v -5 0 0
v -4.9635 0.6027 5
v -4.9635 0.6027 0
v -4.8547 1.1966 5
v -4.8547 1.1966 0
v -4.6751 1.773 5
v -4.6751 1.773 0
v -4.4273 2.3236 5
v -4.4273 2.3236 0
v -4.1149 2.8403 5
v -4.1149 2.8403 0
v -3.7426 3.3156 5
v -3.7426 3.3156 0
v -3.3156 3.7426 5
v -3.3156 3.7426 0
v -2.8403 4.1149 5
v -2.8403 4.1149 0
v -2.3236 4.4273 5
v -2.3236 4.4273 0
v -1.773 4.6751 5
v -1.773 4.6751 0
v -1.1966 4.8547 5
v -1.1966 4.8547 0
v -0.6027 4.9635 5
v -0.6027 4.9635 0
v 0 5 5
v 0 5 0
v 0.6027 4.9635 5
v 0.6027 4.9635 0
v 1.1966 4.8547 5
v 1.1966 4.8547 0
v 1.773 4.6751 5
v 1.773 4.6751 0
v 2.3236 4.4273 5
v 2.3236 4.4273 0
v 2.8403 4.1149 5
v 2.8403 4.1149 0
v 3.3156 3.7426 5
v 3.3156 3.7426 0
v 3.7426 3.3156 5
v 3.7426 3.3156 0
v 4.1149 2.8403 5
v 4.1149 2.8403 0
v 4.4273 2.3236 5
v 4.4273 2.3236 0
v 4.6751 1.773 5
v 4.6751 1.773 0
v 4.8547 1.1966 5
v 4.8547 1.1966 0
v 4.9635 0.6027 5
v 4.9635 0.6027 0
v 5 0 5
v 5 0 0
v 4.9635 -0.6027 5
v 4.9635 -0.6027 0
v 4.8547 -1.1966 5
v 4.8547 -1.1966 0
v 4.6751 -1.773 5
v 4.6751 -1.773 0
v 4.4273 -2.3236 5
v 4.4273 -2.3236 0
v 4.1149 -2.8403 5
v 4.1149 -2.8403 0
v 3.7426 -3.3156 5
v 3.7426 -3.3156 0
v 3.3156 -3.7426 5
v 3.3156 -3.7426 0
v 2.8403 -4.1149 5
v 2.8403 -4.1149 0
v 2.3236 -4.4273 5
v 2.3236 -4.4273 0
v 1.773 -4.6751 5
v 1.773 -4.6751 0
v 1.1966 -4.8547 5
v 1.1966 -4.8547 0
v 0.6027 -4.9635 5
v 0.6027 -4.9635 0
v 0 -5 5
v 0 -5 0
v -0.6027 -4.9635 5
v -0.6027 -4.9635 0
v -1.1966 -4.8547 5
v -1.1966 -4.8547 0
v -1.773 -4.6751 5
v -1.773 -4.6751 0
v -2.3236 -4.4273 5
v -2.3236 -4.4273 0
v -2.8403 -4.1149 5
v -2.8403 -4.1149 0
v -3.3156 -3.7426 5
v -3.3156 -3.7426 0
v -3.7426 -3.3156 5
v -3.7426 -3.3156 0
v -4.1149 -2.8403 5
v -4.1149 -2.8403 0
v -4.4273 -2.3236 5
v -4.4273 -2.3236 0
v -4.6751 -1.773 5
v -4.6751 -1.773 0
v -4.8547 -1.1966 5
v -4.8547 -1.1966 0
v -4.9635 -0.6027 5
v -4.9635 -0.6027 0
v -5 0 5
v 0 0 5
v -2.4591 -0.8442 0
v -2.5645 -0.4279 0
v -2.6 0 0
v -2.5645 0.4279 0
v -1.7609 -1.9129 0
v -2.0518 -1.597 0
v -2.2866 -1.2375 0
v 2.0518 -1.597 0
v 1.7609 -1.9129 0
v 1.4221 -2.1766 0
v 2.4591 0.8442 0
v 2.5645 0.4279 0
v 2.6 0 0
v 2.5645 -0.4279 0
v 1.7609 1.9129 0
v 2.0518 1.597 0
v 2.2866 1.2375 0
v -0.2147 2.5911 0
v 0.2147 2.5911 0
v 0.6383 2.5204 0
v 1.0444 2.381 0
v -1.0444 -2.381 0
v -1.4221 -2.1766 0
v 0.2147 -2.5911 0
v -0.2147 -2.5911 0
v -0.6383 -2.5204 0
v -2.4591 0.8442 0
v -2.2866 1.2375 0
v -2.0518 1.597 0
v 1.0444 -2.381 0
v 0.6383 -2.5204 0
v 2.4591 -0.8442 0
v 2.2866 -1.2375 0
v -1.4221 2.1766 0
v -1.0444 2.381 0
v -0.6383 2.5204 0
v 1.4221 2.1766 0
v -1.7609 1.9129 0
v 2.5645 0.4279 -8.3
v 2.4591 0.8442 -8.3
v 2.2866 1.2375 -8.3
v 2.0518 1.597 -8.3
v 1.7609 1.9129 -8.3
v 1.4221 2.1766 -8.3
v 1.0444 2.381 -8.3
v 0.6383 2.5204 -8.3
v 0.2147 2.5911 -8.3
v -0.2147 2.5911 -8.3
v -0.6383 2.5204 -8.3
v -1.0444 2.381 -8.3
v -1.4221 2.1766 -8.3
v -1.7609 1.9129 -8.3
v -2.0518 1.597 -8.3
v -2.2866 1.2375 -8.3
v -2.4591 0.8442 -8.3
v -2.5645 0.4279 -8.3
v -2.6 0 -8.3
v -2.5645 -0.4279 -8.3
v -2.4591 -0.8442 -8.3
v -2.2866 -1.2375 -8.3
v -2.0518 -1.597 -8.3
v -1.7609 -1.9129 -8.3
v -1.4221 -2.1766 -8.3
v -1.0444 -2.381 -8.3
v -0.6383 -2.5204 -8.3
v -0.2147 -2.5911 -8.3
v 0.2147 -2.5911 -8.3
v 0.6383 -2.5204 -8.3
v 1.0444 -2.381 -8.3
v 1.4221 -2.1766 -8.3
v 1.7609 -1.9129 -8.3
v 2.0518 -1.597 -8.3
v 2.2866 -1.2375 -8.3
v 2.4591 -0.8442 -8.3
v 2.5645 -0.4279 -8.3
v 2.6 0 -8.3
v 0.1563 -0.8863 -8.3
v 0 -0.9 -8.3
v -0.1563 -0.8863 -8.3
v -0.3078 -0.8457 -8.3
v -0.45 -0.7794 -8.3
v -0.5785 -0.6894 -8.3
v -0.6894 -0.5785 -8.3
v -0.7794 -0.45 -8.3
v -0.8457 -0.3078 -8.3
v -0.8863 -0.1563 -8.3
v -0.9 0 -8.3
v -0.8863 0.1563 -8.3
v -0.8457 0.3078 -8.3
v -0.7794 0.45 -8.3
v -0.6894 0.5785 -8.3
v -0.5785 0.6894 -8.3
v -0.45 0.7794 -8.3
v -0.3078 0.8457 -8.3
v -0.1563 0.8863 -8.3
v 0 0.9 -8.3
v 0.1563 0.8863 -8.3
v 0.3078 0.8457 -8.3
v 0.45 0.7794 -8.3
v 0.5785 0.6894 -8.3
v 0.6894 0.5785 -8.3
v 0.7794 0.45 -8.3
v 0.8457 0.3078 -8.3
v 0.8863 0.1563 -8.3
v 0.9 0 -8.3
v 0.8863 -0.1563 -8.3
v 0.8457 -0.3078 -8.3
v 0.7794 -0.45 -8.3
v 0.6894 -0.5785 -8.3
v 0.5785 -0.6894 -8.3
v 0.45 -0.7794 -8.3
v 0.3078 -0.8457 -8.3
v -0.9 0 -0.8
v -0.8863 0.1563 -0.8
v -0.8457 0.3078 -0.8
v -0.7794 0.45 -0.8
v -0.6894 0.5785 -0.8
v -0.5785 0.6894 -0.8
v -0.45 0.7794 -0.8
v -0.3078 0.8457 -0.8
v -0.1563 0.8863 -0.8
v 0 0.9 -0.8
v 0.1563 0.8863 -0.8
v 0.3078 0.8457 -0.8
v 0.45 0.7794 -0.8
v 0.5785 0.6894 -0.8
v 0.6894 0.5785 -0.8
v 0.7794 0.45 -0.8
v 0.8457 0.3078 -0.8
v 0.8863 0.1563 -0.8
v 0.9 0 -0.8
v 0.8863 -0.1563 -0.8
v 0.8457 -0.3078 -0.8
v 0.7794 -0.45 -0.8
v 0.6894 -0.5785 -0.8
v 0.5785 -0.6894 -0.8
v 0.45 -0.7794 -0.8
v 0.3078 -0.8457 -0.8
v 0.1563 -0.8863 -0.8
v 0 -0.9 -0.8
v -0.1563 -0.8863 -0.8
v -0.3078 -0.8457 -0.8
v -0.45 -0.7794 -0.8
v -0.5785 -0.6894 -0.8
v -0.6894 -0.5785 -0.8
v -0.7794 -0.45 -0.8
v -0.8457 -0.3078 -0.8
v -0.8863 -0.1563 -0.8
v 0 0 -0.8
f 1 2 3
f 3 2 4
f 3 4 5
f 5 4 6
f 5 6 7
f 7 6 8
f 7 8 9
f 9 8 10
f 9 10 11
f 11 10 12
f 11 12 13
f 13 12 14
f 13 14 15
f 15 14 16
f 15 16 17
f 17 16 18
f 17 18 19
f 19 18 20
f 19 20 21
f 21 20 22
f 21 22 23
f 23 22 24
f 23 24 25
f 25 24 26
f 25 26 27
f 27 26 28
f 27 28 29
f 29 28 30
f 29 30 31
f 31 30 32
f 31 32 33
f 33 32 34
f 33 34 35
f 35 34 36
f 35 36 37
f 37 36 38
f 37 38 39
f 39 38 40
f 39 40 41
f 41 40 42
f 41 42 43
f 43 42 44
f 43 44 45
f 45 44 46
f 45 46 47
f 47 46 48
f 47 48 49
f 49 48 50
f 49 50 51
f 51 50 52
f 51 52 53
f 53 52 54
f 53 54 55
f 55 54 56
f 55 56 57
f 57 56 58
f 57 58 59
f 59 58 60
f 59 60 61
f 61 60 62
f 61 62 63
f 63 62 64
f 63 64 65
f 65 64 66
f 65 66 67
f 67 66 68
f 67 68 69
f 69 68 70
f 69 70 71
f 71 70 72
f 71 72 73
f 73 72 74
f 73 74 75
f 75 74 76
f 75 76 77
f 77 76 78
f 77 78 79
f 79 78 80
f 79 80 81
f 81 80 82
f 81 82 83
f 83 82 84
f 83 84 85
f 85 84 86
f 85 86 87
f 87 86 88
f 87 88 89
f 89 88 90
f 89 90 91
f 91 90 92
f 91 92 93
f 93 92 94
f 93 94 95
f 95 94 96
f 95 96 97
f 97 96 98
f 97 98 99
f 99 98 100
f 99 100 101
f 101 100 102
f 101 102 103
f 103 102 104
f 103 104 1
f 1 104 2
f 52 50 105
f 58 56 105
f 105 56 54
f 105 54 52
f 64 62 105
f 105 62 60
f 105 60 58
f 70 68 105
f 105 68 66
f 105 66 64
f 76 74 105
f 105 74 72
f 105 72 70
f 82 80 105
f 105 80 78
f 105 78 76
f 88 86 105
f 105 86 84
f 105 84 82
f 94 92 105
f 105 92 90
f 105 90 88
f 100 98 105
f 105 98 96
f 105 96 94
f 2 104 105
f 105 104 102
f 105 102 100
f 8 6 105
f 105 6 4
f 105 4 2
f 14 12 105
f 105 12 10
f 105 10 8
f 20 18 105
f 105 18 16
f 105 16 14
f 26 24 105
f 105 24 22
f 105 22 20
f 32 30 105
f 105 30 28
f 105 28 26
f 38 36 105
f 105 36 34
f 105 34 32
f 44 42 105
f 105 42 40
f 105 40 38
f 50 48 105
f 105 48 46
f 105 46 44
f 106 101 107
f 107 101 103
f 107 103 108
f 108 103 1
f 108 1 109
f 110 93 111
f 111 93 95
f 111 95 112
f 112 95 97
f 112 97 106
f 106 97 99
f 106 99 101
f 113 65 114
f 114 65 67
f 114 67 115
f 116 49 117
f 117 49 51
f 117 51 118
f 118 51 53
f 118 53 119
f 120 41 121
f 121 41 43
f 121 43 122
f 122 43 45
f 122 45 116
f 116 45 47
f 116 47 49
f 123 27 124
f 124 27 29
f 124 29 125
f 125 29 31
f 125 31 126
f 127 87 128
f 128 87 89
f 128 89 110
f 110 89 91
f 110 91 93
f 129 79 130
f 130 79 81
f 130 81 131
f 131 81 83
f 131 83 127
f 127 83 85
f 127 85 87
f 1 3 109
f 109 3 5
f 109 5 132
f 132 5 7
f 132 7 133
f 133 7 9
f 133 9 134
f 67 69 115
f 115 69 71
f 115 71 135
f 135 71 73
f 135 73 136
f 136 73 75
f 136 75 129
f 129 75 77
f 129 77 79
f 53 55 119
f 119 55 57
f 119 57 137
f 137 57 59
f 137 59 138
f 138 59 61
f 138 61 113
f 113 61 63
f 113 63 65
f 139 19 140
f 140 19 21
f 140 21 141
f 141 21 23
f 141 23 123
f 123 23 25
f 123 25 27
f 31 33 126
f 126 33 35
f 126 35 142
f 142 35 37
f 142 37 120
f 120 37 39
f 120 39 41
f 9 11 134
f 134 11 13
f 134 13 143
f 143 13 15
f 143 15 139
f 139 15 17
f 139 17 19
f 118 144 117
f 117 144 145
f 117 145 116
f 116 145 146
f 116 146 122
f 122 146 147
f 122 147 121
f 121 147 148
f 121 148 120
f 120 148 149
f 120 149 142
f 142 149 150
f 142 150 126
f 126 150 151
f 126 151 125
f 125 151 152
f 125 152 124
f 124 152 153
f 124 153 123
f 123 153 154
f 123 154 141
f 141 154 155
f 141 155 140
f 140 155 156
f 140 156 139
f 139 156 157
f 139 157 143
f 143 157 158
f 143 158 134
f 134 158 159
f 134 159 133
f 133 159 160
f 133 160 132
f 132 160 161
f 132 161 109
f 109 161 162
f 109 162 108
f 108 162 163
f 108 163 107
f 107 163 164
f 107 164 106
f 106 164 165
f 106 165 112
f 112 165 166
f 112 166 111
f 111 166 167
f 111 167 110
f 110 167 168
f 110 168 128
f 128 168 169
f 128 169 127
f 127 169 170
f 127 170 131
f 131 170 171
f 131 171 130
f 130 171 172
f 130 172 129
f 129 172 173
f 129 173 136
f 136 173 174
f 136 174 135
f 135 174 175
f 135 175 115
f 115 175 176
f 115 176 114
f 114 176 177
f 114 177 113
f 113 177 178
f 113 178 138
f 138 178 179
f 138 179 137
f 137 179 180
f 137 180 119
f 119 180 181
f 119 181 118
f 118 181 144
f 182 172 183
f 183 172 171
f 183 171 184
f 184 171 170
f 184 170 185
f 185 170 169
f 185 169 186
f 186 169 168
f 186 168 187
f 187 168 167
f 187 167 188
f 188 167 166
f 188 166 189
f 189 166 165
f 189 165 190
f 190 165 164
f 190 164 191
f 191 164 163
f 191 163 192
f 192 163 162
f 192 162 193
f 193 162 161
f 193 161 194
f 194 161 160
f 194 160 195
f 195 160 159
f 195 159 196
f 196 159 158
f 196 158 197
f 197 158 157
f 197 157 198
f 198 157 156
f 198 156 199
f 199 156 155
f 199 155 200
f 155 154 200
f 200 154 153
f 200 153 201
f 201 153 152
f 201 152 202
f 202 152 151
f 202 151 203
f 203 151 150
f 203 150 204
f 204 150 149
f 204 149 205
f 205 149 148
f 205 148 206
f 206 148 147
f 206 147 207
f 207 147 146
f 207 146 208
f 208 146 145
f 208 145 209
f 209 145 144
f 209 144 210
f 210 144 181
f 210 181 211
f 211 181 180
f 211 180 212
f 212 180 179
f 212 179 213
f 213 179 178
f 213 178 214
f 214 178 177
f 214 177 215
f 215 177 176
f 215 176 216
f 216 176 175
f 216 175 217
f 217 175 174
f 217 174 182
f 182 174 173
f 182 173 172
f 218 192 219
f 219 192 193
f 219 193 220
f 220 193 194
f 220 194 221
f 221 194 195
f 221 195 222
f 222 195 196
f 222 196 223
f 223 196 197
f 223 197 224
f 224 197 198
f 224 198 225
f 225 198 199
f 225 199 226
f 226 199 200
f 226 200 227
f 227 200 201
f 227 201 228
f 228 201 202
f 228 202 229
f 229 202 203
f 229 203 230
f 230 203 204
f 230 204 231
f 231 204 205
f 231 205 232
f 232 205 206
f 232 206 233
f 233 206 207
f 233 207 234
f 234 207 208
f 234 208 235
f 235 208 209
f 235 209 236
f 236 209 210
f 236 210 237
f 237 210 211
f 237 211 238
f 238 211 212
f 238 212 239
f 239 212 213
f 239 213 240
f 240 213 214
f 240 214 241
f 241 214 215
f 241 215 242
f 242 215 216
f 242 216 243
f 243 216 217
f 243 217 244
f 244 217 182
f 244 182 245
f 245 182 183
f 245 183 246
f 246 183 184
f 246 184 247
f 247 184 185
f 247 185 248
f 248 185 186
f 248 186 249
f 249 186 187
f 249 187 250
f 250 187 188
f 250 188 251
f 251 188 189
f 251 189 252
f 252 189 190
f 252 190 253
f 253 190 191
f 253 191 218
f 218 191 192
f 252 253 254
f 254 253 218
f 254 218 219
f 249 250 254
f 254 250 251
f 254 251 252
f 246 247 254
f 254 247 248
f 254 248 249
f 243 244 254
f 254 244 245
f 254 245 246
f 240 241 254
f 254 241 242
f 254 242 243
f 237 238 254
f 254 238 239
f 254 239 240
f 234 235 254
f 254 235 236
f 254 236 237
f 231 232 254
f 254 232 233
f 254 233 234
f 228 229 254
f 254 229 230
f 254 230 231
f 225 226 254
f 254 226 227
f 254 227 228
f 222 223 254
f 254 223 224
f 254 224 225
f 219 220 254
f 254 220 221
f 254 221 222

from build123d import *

# Parameters (mm, degrees)
ESQUISSE1_R             = 5
BOSS_EXTRU_1_DEPTH      = 5
ESQUISSE2_R             = 2.6
BOSS_EXTRU_2_DEPTH      = 8.3
ESQUISSE3_R             = 0.9
ENL_V_MAT_EXTRU_1_DEPTH = 7.5


with BuildPart() as part:
    # Esquisse1 → Boss.-Extru.1 (new body)
    with BuildSketch(Plane.XY):
        Circle(ESQUISSE1_R)
    extrude(amount=BOSS_EXTRU_1_DEPTH)

    # Esquisse2 → Boss.-Extru.2 (add)
    with BuildSketch(Plane(origin=(0, 0, 0), x_dir=(-1, 0, 0), z_dir=(0, 0, -1))):
        with Locations(Location((0, 0, 0), (0, 0, 180))):
            Circle(ESQUISSE2_R)
    extrude(amount=BOSS_EXTRU_2_DEPTH)

    # Esquisse3 → Enlèv. mat.-Extru.1 (cut)
    with BuildSketch(Plane(origin=(0, 0, -8.3), x_dir=(-1, 0, 0), z_dir=(0, 0, -1))):
        Circle(ESQUISSE3_R)
    extrude(amount=-ENL_V_MAT_EXTRU_1_DEPTH, mode=Mode.SUBTRACT)


solid = part.part
